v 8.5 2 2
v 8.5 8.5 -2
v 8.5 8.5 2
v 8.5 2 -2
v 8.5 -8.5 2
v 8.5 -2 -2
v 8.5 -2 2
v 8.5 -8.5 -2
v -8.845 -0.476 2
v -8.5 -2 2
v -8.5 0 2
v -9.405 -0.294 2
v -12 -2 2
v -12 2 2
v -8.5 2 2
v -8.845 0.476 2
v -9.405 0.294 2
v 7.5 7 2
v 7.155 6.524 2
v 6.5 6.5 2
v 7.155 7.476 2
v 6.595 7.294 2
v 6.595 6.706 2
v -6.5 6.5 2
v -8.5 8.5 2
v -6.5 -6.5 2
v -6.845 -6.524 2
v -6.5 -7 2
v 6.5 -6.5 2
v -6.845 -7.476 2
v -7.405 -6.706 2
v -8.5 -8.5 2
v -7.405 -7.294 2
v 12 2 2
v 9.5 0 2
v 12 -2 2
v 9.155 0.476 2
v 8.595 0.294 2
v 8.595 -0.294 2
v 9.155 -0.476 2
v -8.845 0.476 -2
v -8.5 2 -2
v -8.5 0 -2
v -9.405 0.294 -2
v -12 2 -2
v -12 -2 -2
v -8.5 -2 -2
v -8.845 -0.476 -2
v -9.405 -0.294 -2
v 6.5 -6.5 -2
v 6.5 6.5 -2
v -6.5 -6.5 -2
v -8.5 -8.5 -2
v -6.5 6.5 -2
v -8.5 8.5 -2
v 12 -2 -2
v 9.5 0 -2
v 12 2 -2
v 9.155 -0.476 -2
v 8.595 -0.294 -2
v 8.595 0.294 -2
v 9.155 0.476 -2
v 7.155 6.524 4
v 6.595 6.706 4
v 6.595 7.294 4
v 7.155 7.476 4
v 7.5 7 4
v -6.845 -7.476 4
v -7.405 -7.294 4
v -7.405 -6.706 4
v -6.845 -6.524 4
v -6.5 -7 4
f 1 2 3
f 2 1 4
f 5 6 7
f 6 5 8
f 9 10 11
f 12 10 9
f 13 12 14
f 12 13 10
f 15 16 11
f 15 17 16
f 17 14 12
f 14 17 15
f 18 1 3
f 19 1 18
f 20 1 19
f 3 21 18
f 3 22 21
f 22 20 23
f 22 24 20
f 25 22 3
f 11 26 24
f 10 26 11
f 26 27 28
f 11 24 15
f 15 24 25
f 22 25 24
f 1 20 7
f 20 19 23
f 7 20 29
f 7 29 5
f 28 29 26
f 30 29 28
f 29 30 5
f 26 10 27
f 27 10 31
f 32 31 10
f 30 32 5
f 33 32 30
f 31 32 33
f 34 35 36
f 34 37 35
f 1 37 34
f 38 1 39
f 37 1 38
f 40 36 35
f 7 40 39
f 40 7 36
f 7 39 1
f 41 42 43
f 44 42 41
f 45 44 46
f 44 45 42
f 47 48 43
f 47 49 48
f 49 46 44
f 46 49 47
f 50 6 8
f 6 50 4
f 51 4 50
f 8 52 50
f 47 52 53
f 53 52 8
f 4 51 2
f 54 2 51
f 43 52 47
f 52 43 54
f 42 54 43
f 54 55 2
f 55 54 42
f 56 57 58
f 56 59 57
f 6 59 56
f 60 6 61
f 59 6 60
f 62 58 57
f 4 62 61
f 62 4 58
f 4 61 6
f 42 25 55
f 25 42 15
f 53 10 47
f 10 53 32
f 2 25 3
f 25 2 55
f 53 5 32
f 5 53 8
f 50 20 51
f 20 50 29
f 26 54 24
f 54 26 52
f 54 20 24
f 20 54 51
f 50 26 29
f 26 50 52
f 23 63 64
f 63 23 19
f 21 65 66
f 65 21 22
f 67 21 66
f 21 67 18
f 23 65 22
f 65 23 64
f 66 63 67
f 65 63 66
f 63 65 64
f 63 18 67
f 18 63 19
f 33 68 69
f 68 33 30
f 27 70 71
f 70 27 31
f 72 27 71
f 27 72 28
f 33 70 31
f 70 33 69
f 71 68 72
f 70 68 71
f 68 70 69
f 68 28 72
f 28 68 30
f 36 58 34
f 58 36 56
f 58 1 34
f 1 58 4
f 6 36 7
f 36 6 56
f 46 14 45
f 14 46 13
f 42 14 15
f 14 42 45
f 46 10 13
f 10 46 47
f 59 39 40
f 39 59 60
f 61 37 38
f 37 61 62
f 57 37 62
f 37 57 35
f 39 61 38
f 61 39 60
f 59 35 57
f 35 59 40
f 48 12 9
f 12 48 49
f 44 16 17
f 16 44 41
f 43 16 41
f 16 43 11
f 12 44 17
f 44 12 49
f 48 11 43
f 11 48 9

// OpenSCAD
module xbox (){
difference(){
    cube([17, 17, 4], true);
    cube([13,13,5], true);
}

translate([7,7,2])
    cylinder(h=4,d=1, center=true);
translate([-7,-7,2])
    cylinder(h=4,d=1, center=true);

translate([10,0,0])
    cube([4,4,4], true);

translate([-10,0,0])
    cube([4,4,4], true);
}

difference(){
    xbox();

translate([9, 0, 0]) cylinder(h=6, d=1, center=true);
    translate([-9, 0, 0]) cylinder(h=6, d=1, center=true);
}
